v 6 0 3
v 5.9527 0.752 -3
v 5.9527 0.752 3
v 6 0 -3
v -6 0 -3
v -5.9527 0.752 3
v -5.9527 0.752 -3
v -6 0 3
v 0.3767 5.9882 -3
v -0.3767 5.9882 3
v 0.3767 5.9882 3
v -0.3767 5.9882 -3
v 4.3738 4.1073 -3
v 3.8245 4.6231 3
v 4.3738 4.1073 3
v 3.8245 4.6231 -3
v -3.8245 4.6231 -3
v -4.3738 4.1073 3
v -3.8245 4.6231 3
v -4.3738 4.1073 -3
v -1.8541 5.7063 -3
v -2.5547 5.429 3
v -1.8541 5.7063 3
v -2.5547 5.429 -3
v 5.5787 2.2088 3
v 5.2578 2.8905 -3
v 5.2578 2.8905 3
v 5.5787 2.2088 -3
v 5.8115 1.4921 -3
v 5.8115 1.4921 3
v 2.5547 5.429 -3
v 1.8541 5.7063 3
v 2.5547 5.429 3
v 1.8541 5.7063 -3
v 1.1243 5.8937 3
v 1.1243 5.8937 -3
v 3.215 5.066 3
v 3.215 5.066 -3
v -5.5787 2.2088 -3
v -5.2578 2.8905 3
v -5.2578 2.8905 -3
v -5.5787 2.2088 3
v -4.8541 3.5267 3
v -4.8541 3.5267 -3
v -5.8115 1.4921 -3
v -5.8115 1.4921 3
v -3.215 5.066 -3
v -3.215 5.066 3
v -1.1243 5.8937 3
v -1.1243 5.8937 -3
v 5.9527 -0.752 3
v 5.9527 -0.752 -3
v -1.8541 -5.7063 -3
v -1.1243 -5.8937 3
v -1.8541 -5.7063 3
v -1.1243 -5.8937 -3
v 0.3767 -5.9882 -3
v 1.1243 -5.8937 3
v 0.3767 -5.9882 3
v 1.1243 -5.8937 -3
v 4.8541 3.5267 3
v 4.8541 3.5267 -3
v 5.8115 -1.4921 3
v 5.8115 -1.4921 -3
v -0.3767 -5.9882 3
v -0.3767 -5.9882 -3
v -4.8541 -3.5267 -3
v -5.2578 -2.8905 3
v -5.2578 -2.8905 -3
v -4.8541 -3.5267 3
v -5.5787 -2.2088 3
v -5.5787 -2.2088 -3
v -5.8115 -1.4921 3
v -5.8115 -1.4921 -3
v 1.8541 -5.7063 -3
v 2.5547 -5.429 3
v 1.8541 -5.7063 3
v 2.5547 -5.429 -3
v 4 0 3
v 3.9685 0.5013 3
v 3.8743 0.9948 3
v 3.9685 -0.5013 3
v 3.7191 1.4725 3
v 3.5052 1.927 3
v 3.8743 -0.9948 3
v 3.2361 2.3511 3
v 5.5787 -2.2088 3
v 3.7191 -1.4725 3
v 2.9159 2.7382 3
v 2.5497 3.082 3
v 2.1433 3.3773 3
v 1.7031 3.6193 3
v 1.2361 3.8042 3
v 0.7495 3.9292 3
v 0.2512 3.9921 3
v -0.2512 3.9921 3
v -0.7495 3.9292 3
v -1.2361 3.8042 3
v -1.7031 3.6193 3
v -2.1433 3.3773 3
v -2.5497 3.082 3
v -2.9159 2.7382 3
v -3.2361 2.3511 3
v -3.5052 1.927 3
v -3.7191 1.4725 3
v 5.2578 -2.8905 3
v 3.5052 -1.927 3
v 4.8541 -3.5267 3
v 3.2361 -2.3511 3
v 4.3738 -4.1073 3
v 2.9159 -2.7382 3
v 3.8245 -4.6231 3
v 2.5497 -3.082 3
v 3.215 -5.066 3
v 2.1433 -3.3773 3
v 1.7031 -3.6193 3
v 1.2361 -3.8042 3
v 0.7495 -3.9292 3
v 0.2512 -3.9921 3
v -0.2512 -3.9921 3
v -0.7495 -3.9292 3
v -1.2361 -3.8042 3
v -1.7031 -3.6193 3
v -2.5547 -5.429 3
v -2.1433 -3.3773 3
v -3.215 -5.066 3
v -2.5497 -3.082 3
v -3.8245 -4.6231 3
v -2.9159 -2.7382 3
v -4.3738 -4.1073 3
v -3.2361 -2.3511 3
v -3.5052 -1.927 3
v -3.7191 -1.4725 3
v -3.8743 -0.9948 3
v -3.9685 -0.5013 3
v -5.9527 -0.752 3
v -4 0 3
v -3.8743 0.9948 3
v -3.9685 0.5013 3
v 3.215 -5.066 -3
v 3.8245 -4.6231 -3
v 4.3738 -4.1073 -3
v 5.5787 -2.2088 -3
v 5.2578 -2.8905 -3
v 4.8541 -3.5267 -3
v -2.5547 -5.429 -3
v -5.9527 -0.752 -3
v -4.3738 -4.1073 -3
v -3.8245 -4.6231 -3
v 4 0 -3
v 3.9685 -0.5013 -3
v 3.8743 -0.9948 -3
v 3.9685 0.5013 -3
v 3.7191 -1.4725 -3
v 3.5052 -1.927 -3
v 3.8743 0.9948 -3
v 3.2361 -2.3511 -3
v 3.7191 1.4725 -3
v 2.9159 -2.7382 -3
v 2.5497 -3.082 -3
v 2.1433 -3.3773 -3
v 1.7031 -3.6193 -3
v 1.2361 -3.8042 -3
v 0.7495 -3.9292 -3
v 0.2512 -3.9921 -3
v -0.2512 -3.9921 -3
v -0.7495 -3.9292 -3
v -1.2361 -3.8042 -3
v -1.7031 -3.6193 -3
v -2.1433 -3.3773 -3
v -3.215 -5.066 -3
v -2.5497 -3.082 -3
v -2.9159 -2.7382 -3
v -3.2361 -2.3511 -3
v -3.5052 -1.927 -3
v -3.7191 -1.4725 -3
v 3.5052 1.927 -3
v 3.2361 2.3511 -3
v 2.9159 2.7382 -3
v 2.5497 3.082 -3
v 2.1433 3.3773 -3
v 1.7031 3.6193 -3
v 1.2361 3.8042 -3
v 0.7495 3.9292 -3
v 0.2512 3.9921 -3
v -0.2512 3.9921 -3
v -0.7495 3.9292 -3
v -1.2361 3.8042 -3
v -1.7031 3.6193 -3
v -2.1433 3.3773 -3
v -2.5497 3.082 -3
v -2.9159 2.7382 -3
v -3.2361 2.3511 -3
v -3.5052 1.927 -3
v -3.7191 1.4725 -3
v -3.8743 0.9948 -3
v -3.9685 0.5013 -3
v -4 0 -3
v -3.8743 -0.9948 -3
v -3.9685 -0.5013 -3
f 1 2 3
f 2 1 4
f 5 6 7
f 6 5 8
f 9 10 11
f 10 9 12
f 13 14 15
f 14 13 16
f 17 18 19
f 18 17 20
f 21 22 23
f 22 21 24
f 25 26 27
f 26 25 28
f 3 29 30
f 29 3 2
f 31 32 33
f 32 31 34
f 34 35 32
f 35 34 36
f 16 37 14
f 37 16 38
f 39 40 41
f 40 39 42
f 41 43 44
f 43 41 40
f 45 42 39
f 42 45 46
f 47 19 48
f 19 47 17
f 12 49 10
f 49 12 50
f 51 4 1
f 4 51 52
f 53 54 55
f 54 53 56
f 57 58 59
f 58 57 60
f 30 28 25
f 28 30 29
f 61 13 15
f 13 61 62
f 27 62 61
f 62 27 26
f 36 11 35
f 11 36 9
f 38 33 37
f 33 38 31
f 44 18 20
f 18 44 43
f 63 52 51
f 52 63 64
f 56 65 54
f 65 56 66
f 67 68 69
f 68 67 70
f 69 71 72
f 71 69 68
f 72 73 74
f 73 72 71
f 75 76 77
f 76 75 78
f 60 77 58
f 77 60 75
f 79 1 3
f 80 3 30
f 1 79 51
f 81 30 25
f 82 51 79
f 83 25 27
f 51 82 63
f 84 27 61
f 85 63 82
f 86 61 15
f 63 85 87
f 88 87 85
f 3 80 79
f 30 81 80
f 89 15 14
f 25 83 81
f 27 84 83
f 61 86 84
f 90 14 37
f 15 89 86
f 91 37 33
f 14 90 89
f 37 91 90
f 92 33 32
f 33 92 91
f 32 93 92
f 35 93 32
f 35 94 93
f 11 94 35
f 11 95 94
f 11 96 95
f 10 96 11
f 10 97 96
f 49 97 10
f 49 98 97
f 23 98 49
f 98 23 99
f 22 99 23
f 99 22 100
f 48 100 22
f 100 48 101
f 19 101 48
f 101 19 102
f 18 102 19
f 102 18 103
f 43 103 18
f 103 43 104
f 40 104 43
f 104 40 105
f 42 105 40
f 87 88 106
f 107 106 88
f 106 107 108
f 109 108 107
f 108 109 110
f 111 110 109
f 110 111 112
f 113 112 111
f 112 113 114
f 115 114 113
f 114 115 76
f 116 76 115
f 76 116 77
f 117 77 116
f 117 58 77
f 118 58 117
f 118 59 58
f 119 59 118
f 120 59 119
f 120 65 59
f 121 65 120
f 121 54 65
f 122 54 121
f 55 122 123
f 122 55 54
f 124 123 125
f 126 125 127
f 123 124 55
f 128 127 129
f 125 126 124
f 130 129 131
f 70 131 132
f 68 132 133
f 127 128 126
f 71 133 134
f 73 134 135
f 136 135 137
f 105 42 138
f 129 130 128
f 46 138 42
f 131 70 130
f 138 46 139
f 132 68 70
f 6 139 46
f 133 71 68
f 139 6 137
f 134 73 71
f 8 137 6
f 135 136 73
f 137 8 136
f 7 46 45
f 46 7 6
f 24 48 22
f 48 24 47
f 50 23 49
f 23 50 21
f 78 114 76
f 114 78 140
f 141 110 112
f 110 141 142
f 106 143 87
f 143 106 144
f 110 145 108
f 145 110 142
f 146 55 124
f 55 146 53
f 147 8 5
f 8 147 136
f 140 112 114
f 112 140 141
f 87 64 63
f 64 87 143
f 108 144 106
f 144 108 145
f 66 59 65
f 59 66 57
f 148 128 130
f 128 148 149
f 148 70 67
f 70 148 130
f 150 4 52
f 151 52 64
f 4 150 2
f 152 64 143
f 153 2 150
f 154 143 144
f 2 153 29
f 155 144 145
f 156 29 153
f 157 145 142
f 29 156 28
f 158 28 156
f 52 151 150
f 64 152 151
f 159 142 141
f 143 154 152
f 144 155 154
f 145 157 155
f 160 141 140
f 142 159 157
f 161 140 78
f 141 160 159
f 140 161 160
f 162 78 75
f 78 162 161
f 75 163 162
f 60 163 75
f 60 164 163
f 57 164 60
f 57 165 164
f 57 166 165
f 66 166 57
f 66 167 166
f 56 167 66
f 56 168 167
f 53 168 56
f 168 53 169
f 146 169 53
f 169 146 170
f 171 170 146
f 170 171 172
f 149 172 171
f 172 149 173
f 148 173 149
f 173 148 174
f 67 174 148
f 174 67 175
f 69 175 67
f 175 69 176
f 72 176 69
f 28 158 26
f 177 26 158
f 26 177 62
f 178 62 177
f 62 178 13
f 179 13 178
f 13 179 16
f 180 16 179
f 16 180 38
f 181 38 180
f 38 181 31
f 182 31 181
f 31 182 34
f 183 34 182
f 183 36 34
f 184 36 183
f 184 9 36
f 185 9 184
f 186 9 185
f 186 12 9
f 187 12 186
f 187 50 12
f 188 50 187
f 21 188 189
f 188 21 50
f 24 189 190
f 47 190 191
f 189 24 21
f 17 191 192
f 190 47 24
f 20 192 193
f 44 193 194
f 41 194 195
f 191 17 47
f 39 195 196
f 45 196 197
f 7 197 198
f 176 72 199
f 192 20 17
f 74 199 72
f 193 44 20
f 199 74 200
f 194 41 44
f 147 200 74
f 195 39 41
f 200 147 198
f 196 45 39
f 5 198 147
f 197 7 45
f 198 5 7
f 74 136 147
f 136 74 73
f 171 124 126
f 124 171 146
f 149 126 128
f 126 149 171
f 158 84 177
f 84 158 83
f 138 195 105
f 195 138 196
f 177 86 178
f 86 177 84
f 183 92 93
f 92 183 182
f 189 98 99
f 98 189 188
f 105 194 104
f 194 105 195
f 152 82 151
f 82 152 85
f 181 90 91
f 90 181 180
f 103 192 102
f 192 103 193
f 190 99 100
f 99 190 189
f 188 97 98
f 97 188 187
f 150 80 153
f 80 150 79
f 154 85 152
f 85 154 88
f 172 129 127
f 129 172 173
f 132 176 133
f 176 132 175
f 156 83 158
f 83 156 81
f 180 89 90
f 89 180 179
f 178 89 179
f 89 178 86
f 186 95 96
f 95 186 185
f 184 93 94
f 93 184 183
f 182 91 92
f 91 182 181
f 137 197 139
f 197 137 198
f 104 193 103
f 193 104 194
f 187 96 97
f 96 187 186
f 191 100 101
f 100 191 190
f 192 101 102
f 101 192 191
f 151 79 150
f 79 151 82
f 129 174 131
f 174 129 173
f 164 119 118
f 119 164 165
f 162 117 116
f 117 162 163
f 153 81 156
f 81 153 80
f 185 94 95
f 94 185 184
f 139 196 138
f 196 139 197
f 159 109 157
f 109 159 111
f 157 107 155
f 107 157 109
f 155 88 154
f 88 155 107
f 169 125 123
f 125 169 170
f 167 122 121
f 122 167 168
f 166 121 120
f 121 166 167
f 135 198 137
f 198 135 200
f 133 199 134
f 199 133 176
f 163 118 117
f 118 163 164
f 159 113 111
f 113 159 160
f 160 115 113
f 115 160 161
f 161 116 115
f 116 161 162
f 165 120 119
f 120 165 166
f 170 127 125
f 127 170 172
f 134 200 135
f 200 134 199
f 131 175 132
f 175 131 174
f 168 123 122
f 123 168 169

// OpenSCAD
$fn = 50;


difference() {
	union() {
		translate(v = [0, 0, -3.0000000000]) {
			cylinder(h = 6, r = 6.0000000000);
		}
	}
	union() {
		translate(v = [0, 0, -100.0000000000]) {
			cylinder(h = 200, r = 4.0000000000);
		}
	}
}
